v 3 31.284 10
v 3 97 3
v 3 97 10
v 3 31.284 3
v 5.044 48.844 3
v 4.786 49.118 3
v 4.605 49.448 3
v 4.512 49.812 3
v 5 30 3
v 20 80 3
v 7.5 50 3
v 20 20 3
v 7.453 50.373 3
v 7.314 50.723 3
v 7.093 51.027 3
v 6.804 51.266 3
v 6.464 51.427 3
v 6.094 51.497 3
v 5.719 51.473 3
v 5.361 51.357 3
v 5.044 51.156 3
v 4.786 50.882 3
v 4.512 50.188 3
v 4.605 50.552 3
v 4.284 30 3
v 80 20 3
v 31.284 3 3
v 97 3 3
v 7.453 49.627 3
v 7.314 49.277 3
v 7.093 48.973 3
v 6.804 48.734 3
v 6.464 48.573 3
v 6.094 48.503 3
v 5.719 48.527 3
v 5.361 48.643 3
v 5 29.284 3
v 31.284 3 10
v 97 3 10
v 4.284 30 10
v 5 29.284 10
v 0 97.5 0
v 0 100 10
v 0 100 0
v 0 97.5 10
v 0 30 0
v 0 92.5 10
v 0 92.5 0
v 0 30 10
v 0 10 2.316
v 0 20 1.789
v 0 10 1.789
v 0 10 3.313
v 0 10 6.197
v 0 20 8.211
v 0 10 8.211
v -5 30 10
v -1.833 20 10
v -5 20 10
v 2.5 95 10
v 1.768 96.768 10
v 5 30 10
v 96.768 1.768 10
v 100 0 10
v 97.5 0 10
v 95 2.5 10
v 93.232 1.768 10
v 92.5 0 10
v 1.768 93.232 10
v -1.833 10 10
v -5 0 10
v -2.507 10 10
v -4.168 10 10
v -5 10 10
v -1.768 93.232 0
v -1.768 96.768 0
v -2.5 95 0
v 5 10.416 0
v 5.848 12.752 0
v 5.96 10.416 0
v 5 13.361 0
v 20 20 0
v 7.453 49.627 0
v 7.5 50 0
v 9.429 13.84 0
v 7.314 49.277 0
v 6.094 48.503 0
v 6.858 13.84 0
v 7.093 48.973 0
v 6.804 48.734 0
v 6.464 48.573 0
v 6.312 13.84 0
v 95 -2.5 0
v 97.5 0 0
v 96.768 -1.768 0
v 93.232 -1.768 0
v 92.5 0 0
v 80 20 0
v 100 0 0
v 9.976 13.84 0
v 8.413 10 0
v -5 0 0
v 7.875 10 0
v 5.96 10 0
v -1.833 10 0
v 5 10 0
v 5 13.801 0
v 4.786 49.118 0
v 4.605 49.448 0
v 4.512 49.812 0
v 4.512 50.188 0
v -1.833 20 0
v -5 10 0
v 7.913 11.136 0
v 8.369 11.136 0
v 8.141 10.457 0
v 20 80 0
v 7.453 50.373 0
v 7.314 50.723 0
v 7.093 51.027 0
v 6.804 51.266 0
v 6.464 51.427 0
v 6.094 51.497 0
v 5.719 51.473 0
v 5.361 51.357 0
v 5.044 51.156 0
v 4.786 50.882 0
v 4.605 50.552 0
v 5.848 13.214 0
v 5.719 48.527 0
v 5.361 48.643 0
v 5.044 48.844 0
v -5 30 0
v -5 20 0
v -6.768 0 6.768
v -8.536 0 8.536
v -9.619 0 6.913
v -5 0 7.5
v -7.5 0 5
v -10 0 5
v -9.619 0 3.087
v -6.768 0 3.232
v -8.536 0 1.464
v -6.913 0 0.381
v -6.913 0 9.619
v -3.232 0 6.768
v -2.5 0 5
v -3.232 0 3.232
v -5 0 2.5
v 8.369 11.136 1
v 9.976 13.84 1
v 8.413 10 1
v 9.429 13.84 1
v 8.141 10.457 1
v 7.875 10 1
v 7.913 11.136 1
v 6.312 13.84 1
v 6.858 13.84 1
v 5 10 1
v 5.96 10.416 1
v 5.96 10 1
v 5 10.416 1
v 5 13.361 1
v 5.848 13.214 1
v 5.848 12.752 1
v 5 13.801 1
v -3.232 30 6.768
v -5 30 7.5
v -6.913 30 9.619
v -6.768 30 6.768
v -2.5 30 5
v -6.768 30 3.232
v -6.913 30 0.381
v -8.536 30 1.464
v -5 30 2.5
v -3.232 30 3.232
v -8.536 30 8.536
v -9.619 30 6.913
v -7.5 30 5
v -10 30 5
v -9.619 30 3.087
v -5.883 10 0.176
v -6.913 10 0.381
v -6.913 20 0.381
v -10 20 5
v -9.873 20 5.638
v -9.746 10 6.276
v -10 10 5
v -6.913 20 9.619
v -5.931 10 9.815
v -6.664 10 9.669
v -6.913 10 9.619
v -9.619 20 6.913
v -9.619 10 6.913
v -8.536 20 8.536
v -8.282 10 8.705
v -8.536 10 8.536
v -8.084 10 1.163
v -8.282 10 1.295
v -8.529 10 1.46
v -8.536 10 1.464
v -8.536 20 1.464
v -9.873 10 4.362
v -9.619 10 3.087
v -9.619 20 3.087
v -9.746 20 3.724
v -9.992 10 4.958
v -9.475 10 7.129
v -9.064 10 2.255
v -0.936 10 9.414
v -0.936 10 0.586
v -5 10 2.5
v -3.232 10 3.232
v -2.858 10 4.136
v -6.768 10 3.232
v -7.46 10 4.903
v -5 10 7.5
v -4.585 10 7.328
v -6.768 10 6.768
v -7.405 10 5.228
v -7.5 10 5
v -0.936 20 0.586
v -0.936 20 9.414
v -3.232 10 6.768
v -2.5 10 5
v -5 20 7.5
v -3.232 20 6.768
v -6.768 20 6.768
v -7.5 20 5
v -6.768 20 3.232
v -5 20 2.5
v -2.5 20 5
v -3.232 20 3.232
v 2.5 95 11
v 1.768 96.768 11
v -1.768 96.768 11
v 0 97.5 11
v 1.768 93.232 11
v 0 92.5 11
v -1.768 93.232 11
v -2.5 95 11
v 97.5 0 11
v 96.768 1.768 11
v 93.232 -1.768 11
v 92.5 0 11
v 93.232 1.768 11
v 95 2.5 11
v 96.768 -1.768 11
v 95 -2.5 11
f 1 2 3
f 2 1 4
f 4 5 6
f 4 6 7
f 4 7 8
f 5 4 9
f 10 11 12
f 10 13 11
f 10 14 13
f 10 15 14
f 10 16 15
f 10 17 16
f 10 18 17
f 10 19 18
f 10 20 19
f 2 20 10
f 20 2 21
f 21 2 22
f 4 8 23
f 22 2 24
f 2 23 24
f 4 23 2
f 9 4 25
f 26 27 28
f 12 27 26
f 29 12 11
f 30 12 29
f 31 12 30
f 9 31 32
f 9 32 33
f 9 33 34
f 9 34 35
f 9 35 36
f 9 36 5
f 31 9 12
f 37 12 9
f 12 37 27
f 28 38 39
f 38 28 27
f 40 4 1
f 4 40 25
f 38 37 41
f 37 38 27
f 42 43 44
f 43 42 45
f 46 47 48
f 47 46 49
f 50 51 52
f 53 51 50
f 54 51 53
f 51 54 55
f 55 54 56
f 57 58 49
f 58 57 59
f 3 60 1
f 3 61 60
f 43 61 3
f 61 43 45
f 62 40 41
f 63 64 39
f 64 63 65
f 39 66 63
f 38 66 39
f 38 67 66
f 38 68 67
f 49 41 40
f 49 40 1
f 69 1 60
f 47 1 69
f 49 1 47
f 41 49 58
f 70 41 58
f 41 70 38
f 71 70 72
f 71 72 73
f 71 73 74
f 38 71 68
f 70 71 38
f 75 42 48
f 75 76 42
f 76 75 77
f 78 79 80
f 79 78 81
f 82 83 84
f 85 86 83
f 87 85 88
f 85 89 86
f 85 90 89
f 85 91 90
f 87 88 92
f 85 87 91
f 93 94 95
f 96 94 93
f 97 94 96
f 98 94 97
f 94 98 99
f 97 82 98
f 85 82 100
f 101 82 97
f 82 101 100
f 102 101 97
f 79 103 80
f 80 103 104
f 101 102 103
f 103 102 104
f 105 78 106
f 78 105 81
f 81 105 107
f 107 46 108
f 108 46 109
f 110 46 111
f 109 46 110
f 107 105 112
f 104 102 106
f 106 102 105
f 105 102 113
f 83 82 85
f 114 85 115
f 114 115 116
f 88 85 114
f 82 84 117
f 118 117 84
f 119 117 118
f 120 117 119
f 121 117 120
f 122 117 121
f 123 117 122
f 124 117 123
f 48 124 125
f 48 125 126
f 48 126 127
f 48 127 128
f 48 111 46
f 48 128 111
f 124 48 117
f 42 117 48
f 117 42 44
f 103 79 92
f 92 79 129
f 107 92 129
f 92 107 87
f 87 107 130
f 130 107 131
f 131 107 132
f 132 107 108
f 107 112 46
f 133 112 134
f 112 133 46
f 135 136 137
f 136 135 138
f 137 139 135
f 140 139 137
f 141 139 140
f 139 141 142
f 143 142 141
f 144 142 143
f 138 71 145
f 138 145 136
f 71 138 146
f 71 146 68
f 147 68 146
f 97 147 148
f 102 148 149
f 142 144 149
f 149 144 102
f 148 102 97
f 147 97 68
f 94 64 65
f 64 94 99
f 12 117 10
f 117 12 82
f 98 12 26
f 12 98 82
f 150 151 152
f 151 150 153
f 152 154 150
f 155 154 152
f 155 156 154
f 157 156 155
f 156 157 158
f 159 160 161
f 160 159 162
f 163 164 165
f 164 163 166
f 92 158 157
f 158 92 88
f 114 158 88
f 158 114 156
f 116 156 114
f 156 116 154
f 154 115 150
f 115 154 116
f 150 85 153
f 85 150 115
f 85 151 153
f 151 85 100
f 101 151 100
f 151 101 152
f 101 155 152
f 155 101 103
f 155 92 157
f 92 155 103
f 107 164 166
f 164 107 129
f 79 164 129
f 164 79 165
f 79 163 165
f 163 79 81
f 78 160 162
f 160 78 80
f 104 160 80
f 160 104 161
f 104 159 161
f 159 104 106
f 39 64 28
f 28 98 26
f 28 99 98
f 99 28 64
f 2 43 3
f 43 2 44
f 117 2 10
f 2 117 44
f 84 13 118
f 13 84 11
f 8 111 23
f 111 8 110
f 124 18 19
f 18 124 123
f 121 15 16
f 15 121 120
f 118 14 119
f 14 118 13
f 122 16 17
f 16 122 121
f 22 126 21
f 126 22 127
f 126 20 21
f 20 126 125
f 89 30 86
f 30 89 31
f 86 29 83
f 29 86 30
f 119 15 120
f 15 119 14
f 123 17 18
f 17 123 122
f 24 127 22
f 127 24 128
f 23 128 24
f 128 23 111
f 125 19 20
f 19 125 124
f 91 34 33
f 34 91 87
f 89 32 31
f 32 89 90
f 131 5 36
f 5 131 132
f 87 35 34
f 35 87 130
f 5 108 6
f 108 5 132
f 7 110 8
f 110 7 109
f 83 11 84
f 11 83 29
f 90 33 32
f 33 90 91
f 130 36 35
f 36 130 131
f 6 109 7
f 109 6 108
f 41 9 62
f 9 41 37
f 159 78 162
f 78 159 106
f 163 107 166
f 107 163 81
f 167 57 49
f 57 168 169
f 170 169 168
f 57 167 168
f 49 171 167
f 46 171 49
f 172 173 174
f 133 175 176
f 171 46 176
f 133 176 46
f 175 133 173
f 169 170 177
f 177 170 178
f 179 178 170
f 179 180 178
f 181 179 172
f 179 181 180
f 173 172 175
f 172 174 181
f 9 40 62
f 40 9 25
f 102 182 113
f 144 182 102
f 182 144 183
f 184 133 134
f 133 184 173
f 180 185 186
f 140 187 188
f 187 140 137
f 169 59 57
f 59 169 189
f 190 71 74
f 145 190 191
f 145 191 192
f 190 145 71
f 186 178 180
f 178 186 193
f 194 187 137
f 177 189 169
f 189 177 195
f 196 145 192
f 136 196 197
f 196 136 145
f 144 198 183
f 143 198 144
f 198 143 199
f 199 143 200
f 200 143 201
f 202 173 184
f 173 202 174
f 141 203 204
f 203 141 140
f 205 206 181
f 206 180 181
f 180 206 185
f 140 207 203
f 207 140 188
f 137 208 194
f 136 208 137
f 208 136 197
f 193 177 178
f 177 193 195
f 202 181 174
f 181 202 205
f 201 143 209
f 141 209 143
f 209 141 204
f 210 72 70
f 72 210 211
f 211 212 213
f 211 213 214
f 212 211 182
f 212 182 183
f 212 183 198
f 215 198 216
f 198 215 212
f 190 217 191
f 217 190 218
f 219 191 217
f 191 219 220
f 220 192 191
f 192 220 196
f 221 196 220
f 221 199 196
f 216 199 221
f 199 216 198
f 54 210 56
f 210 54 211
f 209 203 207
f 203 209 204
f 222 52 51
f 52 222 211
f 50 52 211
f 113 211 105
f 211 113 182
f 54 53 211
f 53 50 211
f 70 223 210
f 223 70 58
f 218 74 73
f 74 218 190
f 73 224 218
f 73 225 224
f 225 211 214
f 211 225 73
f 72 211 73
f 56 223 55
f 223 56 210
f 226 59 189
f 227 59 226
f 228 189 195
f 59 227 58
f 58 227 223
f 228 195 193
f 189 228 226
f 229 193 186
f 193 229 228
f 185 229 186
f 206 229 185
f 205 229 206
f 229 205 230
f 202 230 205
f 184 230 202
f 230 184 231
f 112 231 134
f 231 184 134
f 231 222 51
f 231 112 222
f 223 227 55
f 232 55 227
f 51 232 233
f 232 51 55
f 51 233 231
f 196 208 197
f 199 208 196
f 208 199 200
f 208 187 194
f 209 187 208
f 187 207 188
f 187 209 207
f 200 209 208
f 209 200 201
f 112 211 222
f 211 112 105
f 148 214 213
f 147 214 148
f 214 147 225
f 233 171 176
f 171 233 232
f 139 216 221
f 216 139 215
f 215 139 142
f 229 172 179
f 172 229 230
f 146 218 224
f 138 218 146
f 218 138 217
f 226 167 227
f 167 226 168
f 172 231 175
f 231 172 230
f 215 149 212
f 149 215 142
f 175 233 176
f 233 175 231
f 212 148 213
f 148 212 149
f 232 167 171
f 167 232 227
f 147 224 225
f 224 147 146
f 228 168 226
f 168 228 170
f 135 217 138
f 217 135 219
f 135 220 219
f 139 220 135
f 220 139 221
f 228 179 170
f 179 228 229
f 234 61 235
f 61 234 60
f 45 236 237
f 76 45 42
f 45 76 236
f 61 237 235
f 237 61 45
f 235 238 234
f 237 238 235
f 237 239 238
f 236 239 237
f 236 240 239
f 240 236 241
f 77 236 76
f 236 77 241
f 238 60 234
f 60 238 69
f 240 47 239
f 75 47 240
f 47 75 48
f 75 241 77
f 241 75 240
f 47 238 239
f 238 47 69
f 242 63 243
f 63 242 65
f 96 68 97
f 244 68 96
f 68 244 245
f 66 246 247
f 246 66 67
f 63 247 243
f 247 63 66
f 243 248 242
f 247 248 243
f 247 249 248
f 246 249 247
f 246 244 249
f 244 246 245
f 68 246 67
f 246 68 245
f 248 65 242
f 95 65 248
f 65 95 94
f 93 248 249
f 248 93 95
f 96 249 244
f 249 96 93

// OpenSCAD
// these are all guesses ATM, but the bounding box should be limited to ~100mm3
design_version = "V1";
length = 100;
height = 100;
depth = 10;
frame_width = 20;
shelf_thickness = 3;
perimeter_thickness = 3;
screw_diameter = 3;
tab_diameter = 5;
hinge_diameter = 10;

difference(){
    // bounding box
    cube([length, height, depth]);
    
    // main cut-out
    translate([frame_width, frame_width, -1]){
        cube([length, height, depth + 2]);
    }
    
	// watermark
    rotate([0,180,0]){
        translate([-10,10,-1]){
            linear_extrude(height = 10){
               #text(design_version,size=4);
            }
        }
    }
    
    // this prevents shelf cut from penetrating the perimeter
    difference(){
        
        // shelf cut-out
        translate([perimeter_thickness, perimeter_thickness,        shelf_thickness]){
            cube([length, height, depth + 2]);
        }    
        
        // outer slash cut
        translate([perimeter_thickness, perimeter_thickness,0]){
            rotate([0,0,-45]){
                translate([-length,0,-1]){
                    cube([length *2, frame_width, depth +2]);
                }
            }     
        }
 
    }
/*    
    // outer slash cut
    rotate([0,0,-45]){
        translate([-length,0,-1]){
            cube([length *2, frame_width, depth +2]);
        }
    }
*/    
    // inner slash cut
    translate([length/2, height/2, 0]){
        rotate([0,0,-45]){
            translate([-length,0,-1]){
                cube([length *2, frame_width, depth +2]);
            }
        }
    }

    // mounting hole (complete guess for now)
    translate([perimeter_thickness*2, height/2,-1]){
        cylinder(r=screw_diameter/2,h=shelf_thickness+2,$fn=25);
    }
}

// upper tab
translate([0,height-5,0]){
    cylinder(r=tab_diameter/2,h=depth+1);
}

// lower tab
translate([length-5,0,0]){
    cylinder(r=tab_diameter/2,h=depth+1);
}

// hinge
difference(){
    union(){
        translate([-depth/2,0,0]){
            cube([10,30,depth]);
        }
        translate([-depth/2,0,depth/2]){
            rotate([-90,0,0]){
                cylinder(r=depth/2,h=30);
            }
        }
    }
    
    // hinge fork
    rotate([0,180,0]){
        translate([depth/2,10,-depth/2]){
            rotate([-90,0,0]){
                #cylinder(r=depth/2+1,h=10);
            }
        }
    }

    // hinge pin hole
    translate([-depth/2,-1,depth/2]){
        rotate([-90,0,0]){
            cylinder(r=depth/4,h=35);
        }
    }
}
